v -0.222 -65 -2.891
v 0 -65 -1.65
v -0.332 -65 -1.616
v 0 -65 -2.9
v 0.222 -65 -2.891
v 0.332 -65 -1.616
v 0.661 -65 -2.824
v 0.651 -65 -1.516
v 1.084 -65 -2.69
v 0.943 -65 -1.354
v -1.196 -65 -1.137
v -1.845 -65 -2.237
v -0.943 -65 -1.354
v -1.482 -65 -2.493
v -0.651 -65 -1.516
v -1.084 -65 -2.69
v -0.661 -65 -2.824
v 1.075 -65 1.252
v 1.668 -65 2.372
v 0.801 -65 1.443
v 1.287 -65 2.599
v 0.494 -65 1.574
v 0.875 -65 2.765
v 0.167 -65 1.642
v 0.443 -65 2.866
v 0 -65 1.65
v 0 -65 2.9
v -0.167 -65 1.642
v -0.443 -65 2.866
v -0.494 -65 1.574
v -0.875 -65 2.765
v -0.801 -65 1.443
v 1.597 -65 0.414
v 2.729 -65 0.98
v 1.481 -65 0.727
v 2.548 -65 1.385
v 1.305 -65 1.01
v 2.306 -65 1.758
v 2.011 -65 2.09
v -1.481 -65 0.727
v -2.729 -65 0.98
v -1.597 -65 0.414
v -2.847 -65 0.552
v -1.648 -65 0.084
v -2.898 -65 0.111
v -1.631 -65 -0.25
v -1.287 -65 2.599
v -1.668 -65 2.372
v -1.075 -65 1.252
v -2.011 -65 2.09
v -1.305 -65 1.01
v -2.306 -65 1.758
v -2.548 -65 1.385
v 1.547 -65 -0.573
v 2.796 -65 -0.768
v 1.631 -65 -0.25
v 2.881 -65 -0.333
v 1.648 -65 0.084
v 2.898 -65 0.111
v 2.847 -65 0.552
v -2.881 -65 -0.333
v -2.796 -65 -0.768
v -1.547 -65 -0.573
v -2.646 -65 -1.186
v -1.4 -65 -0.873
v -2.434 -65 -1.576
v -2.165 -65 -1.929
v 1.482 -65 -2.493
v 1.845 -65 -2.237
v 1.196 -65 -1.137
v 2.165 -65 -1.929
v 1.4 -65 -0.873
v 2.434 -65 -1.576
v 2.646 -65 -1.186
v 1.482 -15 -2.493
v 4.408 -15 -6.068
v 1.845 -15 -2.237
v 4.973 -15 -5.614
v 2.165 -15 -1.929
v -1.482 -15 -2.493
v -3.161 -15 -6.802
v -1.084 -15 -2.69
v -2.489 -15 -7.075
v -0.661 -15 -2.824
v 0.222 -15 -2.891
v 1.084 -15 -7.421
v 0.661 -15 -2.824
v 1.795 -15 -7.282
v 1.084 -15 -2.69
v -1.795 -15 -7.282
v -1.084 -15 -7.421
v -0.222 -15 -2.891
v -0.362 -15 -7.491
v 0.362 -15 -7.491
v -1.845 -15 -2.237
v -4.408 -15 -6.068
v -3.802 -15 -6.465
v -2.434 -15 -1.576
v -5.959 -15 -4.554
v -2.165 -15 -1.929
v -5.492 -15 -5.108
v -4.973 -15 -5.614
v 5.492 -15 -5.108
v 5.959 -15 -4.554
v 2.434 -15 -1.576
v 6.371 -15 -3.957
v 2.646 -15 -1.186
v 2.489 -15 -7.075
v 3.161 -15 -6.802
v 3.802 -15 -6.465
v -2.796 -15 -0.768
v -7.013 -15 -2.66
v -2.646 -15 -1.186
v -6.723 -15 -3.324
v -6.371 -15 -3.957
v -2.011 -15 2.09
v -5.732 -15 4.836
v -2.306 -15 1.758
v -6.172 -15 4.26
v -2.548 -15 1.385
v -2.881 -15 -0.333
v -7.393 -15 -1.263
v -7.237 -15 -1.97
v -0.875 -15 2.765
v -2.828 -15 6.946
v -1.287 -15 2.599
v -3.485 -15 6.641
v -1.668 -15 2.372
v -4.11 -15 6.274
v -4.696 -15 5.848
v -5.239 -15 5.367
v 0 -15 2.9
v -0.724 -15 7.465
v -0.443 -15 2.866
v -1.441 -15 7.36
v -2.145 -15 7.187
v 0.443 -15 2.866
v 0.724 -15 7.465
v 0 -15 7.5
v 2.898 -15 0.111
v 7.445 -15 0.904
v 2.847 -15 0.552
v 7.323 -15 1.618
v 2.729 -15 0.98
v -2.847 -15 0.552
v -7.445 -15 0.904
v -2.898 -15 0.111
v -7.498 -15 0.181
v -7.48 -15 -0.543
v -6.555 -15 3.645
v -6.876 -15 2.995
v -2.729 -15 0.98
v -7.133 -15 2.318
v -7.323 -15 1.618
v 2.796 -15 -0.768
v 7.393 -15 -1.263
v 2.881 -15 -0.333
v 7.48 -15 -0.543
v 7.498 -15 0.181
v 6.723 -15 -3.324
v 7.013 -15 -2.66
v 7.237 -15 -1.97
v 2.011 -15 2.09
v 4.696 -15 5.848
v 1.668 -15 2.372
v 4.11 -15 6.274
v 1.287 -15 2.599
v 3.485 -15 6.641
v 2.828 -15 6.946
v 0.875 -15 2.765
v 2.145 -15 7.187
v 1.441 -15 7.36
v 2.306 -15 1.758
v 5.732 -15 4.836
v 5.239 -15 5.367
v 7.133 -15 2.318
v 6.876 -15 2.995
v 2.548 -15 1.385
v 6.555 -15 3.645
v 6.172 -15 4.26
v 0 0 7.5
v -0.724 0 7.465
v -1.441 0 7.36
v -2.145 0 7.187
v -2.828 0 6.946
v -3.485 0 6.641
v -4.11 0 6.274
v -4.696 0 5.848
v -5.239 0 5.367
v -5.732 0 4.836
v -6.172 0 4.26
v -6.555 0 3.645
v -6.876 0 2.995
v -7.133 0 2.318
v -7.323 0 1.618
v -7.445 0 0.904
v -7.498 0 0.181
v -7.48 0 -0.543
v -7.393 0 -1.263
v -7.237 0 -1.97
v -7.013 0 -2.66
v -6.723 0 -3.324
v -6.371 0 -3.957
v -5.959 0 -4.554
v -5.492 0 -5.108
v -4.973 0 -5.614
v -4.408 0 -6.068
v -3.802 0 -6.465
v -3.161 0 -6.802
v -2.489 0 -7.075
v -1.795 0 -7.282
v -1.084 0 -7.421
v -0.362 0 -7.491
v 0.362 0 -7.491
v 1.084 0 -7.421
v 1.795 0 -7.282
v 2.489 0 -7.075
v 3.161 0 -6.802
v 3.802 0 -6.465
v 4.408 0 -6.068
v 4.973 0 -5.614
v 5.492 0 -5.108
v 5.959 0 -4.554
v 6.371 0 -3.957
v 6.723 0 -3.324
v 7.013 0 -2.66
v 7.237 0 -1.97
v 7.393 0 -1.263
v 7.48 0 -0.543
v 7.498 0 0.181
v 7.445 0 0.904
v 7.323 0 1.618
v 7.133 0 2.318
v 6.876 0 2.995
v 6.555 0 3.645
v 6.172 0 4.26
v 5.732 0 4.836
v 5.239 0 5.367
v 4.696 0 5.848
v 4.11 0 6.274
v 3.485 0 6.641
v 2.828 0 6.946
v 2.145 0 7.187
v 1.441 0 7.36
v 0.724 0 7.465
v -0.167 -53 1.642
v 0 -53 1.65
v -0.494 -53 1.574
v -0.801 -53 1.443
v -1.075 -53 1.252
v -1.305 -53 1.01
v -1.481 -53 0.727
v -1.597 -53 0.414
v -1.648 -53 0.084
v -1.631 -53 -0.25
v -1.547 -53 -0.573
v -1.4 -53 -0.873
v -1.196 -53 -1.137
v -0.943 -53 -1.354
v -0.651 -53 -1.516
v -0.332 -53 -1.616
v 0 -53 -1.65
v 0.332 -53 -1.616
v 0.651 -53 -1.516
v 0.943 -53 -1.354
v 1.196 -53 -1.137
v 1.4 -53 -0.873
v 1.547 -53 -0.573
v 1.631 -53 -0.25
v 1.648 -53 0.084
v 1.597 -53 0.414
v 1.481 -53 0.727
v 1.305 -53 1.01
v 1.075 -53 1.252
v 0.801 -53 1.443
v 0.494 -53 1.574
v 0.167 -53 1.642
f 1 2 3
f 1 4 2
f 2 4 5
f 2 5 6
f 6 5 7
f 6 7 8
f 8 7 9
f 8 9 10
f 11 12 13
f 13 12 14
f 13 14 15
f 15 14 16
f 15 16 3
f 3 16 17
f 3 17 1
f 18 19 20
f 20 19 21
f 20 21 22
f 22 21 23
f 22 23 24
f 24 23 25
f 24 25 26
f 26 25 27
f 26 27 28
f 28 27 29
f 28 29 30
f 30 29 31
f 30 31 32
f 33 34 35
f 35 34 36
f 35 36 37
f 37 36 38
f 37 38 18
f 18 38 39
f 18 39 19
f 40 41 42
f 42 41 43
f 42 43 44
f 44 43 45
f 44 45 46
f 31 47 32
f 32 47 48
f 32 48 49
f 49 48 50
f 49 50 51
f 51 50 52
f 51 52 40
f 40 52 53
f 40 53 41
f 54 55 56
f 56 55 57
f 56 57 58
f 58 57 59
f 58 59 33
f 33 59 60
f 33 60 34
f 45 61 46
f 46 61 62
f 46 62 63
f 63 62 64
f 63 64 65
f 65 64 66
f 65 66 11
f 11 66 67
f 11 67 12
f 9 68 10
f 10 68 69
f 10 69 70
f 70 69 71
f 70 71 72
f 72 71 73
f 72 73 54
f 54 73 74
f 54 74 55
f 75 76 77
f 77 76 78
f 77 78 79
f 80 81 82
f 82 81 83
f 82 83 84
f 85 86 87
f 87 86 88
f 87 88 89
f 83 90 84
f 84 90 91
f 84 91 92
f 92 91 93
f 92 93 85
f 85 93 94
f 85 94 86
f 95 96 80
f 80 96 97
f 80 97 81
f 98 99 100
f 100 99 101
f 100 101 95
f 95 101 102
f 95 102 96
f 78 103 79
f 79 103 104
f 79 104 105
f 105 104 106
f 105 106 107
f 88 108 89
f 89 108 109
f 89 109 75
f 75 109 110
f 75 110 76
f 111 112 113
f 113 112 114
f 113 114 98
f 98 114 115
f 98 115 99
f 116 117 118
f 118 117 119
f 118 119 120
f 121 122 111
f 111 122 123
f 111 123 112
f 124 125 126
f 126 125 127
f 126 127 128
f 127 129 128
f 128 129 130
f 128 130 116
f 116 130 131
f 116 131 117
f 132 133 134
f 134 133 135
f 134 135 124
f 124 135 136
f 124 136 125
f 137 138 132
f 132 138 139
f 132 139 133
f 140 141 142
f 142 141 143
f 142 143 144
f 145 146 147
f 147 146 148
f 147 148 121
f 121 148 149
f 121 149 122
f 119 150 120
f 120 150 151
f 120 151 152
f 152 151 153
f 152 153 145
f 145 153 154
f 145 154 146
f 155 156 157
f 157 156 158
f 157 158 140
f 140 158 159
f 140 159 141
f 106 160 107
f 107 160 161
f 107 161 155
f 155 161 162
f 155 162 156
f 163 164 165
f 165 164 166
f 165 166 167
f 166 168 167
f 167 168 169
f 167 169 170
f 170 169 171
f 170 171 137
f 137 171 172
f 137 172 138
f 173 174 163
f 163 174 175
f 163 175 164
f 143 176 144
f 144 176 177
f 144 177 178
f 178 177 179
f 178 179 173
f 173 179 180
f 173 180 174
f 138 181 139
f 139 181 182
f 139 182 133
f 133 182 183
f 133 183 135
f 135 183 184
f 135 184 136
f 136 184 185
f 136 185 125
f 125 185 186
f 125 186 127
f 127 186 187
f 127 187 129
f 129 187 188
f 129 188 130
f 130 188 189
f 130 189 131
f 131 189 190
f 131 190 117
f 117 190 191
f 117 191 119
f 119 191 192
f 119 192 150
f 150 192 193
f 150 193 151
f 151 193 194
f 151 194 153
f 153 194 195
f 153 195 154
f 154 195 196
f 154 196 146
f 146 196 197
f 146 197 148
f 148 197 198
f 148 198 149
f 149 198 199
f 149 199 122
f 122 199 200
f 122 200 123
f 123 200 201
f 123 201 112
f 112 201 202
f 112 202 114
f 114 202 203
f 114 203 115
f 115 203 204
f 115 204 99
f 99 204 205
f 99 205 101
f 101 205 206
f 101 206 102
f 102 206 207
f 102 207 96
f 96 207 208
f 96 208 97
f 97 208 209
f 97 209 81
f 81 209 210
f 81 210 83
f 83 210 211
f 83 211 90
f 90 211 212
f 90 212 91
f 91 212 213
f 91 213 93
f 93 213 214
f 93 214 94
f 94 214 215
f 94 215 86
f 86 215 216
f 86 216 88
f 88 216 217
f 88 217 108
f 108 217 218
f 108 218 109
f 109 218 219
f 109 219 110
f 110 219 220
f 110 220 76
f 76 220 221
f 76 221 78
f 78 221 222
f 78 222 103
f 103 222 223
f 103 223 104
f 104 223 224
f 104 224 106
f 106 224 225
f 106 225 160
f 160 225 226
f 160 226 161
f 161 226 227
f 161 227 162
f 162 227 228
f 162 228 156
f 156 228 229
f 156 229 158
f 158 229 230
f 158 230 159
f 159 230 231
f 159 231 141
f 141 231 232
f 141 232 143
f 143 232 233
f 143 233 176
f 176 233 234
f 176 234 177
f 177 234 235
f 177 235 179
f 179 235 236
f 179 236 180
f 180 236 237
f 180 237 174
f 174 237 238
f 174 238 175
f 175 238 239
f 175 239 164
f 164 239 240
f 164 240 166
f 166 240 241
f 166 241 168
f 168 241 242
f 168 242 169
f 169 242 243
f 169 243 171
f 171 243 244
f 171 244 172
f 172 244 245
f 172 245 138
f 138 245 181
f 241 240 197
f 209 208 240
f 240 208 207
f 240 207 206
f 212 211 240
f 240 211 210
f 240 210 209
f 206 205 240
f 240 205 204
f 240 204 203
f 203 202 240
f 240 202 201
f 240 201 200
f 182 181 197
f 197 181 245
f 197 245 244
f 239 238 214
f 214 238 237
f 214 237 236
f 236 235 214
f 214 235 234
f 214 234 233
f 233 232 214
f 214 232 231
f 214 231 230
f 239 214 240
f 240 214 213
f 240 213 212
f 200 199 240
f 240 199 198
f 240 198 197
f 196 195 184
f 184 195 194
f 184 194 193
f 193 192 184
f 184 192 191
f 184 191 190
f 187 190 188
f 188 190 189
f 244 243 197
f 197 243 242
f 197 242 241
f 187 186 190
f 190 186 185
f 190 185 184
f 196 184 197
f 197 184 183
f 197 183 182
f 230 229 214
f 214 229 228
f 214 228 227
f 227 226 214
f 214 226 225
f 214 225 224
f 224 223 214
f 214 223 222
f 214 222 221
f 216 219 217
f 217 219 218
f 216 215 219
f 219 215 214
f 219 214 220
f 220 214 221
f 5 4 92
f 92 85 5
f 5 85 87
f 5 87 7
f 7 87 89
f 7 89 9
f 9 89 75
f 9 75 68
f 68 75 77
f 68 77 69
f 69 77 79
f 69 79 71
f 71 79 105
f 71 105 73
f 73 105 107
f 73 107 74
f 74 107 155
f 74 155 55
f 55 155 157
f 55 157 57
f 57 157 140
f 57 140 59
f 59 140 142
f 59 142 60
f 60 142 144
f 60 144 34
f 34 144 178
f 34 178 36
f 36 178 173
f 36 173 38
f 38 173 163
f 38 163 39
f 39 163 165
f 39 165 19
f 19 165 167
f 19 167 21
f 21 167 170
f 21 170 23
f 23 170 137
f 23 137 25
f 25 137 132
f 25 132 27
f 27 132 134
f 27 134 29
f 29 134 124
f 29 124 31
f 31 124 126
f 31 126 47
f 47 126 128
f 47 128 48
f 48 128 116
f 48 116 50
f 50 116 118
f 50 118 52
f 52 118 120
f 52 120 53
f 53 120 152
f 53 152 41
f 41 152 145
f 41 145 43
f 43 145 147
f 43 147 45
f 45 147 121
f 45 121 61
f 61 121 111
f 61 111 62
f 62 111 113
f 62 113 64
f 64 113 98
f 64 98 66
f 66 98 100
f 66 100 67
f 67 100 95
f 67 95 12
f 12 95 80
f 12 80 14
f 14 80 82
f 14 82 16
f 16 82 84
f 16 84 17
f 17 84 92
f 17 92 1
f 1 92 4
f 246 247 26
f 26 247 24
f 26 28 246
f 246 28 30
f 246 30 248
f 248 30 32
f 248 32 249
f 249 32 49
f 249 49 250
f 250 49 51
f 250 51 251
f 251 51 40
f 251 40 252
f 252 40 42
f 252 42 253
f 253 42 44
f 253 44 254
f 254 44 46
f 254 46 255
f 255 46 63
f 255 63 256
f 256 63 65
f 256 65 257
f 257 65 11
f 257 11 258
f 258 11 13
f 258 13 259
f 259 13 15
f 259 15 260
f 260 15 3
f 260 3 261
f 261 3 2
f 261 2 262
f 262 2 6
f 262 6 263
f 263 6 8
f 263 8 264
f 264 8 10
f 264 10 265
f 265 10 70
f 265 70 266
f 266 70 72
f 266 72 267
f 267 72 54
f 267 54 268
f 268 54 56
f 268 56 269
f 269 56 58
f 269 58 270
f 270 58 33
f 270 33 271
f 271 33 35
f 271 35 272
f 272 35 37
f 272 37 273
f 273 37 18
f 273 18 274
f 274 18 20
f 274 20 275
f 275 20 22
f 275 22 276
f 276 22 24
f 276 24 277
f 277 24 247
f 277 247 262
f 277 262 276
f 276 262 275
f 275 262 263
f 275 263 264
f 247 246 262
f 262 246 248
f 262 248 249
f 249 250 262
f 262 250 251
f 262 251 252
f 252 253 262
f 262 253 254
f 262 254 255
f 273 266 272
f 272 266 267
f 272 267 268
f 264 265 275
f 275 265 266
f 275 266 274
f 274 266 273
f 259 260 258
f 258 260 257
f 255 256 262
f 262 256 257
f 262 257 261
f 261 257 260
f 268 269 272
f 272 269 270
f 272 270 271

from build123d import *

# Parameters (mm, degrees)
SKETCH1_R           = 7.5
BOSS_EXTRUDE1_DEPTH = 15
SKETCH3_R           = 2.9
BOSS_EXTRUDE3_DEPTH = 50
SKETCH4_R           = 1.65
CUT_EXTRUDE1_DEPTH  = 12


with BuildPart() as part:
    # Sketch1 → Boss-Extrude1 (new body)
    with BuildSketch(Plane(origin=(0, 0, 0), x_dir=(1, 0, 0), z_dir=(0, 1, 0))):
        with Locations(Location((0, 0, 0), (0, 0, 270))):
            Circle(SKETCH1_R)
    extrude(amount=-BOSS_EXTRUDE1_DEPTH)

    # Sketch3 → Boss-Extrude3 (add)
    with BuildSketch(Plane.XZ.offset(15)):
        with Locations(Location((0, 0, 0), (0, 0, 90))):
            Circle(SKETCH3_R)
    extrude(amount=BOSS_EXTRUDE3_DEPTH)

    # Sketch4 → Cut-Extrude1 (cut)
    with BuildSketch(Plane(origin=(0, -65, 0), x_dir=(1, 0, 0), z_dir=(0, 1, 0))):
        with Locations(Location((0, 0, 0), (0, 0, 270))):
            Circle(SKETCH4_R)
    extrude(amount=CUT_EXTRUDE1_DEPTH, mode=Mode.SUBTRACT)


solid = part.part
